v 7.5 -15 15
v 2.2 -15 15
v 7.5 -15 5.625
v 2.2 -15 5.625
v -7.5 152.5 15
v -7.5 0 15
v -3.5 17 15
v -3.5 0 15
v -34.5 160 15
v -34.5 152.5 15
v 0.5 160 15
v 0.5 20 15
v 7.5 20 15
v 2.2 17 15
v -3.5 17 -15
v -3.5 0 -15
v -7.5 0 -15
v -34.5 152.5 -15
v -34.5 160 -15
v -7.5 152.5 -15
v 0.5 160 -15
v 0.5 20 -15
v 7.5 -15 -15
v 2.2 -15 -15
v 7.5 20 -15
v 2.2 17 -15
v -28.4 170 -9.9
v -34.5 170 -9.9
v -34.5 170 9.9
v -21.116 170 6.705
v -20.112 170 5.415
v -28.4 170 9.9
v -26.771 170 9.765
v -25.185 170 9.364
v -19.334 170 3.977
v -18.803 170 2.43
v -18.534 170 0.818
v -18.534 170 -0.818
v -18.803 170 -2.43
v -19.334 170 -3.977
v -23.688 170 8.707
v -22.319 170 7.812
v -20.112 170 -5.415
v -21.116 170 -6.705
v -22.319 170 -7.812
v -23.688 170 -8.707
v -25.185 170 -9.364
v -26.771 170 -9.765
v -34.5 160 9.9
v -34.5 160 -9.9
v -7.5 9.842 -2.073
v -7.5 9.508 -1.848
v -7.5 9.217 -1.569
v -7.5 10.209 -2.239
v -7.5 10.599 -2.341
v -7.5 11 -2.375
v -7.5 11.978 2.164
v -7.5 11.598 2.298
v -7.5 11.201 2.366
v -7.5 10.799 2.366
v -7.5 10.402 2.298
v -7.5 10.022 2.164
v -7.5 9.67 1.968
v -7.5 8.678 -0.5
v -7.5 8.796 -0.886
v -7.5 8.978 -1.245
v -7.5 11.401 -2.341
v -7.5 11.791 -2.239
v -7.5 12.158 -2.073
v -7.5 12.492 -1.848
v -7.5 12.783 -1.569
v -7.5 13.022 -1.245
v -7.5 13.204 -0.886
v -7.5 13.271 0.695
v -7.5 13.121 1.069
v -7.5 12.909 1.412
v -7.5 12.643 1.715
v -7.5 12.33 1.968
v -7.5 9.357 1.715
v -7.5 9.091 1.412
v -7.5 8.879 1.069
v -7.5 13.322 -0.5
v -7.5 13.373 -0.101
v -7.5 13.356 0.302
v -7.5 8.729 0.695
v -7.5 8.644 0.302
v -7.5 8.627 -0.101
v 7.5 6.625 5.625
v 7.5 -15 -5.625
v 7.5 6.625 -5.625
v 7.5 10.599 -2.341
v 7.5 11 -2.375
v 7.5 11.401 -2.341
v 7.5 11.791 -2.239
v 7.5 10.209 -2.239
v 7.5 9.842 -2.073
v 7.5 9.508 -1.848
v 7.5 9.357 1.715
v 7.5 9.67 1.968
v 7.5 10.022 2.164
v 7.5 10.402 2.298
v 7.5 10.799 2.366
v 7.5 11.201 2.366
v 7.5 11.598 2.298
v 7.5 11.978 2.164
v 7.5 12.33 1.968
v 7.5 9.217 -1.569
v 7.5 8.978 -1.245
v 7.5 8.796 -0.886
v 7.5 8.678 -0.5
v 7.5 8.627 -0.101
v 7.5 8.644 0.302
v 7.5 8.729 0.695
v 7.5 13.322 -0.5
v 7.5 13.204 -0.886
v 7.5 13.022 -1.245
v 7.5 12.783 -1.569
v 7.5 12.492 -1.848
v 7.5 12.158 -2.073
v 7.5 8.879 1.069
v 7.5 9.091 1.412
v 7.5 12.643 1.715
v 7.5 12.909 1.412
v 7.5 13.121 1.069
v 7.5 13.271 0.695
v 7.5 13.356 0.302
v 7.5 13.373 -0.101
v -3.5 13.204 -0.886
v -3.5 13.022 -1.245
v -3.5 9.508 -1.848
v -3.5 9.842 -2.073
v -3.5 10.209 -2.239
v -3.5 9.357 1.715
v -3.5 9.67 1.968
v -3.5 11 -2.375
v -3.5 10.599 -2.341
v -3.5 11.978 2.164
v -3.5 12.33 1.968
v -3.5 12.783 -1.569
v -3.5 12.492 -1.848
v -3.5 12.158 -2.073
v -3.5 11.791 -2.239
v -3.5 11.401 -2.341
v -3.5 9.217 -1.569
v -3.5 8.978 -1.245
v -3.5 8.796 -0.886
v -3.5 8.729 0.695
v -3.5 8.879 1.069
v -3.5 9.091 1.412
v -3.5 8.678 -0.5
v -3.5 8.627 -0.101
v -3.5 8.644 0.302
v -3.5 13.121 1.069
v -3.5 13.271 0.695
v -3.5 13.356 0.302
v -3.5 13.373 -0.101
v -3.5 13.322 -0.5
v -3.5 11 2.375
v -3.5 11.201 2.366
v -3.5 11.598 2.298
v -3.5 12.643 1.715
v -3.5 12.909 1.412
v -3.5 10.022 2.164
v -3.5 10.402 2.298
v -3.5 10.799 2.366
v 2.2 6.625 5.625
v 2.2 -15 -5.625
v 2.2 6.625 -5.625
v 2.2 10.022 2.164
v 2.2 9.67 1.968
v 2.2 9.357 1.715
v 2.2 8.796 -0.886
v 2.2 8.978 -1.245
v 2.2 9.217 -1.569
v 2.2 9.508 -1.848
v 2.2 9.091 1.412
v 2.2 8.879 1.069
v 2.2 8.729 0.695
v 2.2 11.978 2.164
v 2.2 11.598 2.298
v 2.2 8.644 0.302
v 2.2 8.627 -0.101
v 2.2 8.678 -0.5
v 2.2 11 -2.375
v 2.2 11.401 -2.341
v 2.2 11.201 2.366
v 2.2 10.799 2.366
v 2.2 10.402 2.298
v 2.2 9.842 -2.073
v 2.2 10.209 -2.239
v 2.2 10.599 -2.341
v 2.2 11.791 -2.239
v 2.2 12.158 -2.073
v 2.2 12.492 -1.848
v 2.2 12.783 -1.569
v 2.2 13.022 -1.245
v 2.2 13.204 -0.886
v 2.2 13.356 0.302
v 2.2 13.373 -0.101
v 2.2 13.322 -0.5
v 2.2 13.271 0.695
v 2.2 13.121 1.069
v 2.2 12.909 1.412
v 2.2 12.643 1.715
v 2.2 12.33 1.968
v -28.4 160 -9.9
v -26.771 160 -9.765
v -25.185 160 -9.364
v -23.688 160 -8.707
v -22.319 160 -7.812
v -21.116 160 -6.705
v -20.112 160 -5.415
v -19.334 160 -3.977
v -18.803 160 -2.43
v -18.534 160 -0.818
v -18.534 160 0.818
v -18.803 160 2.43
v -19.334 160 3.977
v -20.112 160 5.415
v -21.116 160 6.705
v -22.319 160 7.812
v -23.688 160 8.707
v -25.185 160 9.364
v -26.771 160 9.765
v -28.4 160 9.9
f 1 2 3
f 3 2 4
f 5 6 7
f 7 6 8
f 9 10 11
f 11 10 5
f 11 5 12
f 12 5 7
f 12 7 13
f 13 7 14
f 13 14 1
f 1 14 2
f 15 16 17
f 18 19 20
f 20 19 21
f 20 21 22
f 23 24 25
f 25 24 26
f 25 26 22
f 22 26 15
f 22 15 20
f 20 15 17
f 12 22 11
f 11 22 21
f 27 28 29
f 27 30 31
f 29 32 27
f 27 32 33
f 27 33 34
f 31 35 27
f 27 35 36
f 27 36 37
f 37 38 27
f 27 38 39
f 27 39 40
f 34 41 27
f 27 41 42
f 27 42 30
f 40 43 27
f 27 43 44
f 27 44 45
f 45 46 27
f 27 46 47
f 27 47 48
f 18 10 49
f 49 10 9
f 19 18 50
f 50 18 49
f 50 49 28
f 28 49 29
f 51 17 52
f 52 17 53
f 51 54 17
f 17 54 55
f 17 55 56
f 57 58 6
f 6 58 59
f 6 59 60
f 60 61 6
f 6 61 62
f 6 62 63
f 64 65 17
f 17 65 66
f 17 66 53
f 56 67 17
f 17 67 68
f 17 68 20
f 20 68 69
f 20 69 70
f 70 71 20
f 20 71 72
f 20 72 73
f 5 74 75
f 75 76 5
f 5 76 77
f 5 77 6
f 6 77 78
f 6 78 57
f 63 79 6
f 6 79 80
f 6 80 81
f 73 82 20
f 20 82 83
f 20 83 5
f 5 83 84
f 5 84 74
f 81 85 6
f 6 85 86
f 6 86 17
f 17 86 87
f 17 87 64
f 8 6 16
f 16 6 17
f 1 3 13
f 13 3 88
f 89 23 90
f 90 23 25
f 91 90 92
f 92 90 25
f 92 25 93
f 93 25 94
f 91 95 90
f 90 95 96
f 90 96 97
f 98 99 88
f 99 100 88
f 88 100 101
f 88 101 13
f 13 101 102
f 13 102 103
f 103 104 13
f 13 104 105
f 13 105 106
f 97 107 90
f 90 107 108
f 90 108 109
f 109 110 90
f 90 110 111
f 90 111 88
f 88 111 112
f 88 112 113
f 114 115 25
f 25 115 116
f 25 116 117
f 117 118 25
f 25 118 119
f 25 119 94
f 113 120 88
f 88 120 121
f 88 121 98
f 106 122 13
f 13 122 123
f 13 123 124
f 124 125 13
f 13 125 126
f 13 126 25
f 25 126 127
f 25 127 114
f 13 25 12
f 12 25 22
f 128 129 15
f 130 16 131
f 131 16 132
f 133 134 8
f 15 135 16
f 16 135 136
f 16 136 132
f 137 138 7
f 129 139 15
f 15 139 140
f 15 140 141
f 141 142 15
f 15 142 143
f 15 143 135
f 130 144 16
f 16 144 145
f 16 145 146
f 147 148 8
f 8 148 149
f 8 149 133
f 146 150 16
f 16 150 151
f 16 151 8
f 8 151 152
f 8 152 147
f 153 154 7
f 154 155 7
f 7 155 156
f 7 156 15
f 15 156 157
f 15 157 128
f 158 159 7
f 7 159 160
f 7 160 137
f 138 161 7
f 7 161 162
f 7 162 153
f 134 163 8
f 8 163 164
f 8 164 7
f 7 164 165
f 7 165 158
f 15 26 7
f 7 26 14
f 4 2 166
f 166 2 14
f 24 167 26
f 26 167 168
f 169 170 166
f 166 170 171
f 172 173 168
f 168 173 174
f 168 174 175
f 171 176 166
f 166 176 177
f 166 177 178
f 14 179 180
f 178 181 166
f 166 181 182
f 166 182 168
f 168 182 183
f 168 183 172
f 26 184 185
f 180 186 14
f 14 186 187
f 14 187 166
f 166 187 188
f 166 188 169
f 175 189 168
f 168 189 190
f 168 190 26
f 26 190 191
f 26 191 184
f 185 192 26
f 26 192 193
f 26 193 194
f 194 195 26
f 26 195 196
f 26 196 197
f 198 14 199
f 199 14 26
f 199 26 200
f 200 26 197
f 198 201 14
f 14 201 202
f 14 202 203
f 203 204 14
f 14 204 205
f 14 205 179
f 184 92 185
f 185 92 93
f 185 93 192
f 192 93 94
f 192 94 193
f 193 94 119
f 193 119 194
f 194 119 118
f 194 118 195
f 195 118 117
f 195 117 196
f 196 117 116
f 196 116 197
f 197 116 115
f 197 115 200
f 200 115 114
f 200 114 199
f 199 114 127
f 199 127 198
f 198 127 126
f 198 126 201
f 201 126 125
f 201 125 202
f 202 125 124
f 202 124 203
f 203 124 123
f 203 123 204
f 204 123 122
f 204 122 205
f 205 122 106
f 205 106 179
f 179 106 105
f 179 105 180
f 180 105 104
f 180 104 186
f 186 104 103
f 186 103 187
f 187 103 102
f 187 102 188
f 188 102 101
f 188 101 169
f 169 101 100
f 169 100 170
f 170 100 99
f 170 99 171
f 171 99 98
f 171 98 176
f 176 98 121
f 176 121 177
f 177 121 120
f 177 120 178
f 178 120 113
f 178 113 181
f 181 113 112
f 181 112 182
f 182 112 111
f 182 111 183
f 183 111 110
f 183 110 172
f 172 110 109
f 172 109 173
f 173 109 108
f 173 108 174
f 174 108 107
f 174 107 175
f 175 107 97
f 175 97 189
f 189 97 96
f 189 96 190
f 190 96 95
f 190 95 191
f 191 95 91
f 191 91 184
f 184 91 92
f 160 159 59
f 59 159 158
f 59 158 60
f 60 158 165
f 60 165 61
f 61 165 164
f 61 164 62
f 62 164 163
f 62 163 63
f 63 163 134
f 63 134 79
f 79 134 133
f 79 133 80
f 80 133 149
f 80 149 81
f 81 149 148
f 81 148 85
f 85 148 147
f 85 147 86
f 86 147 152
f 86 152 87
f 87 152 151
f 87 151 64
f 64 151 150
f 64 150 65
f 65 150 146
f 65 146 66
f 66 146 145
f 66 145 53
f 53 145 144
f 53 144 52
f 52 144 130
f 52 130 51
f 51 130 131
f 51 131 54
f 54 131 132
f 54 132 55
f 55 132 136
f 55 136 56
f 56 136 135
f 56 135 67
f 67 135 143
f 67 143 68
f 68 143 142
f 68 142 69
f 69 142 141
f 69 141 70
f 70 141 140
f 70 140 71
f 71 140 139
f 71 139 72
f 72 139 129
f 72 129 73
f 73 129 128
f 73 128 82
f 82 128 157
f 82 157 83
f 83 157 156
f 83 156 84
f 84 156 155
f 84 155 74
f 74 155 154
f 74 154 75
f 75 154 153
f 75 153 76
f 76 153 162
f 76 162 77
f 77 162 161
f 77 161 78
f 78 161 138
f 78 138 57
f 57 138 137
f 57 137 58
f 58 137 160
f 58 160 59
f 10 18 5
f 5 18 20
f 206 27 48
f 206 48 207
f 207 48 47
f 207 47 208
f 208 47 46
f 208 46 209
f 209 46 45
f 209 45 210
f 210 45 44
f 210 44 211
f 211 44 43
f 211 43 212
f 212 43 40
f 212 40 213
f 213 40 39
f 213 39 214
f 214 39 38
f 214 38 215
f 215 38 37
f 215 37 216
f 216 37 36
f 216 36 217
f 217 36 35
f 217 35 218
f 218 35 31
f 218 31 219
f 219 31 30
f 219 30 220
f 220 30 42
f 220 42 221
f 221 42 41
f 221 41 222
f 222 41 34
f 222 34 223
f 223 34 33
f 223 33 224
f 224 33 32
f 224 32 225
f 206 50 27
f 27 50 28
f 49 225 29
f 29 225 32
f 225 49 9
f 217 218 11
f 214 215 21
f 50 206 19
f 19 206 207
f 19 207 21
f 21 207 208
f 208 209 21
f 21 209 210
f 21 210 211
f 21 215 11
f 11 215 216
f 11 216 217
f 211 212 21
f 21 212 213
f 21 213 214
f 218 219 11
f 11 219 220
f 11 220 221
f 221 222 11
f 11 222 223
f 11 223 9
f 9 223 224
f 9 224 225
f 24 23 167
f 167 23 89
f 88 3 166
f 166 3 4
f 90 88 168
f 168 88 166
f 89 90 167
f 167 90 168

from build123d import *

# Parameters (mm, degrees)
SKETCH_1_W          = 15
SKETCH_1_H          = 30
EXTRUDE_1_DEPTH     = 20
SKETCH_2_W          = 5.7
SKETCH_2_H          = 17
CUT_EXTRUDE_1_DEPTH = 31
SKETCH_3_W          = 8
SKETCH_3_H          = 30
EXTRUDE_2_DEPTH     = 150
SKETCH_4_R          = 2.375
CUT_EXTRUDE_2_DEPTH = 16
SKETCH_5_W          = 30
SKETCH_5_H          = 17.5
EXTRUDE_3_DEPTH     = 27
CUT_EXTRUDE_3_DEPTH = 10
SKETCH_7_W          = 30
SKETCH_7_H          = 15
EXTRUDE_4_DEPTH     = 5.3
CUT_EXTRUDE_4_REACH = 44
SKETCH_8_W          = 11.25
SKETCH_8_H          = 21.625


with BuildPart() as part:
    # 스케치1 → 보스-돌출1 (new body)
    with BuildSketch(Plane(origin=(0, 0, 0), x_dir=(1, 0, 0), z_dir=(0, 1, 0))):
        Rectangle(SKETCH_1_W, SKETCH_1_H)
    extrude(amount=EXTRUDE_1_DEPTH)

    # 스케치2 → 컷-돌출1 (cut, through all)
    with BuildSketch(Plane.XY.offset(15)):
        with Locations((-0.65, 8.5)):
            Rectangle(SKETCH_2_W, SKETCH_2_H)
    extrude(amount=-CUT_EXTRUDE_1_DEPTH, mode=Mode.SUBTRACT)

    # 스케치3 → 보스-돌출2 (add)
    with BuildSketch(Plane(origin=(0, 20, 0), x_dir=(1, 0, 0), z_dir=(0, 1, 0))):
        with Locations((-3.5, 0)):
            Rectangle(SKETCH_3_W, SKETCH_3_H)
    extrude(amount=EXTRUDE_2_DEPTH)

    # 스케치4 → 컷-돌출2 (cut, through all)
    with BuildSketch(Plane(origin=(7.5, 0, 0), x_dir=(0, 0, -1), z_dir=(1, 0, 0))):
        with Locations((0, 11)):
            Circle(SKETCH_4_R)
    extrude(amount=-CUT_EXTRUDE_2_DEPTH, mode=Mode.SUBTRACT)

    # 스케치5 → 보스-돌출3 (add)
    with BuildSketch(Plane.ZY.offset(7.5)):
        with Locations((0, 161.25)):
            Rectangle(SKETCH_5_W, SKETCH_5_H)
    extrude(amount=EXTRUDE_3_DEPTH)

    # 스케치6 → 컷-돌출3 (cut)
    with BuildSketch(Plane(origin=(0, 170, 0), x_dir=(1, 0, 0), z_dir=(0, 1, 0))):
        with BuildLine():
            Line((-34.5, 15), (-34.5, 9.9))
            Line((-34.5, 9.9), (-28.4, 9.9))
            ThreePointArc((-28.4, 9.9), (-18.5, 0), (-28.4, -9.9))
            Line((-28.4, -9.9), (-34.5, -9.9))
            Line((-34.5, -9.9), (-34.5, -15))
            Line((-34.5, -15), (0.5, -15))
            Line((0.5, -15), (0.5, 15))
            Line((0.5, 15), (-34.5, 15))
        make_face()
    extrude(amount=-CUT_EXTRUDE_3_DEPTH, mode=Mode.SUBTRACT)

    # 스케치7 → 보스-돌출4 (add)
    with BuildSketch(Plane(origin=(7.5, 0, 0), x_dir=(0, 0, -1), z_dir=(1, 0, 0))):
        with Locations((0, -7.5)):
            Rectangle(SKETCH_7_W, SKETCH_7_H)
    extrude(amount=-EXTRUDE_4_DEPTH)

    # 스케치8 → 컷-돌출4 (cut, up to next)
    with BuildSketch(Plane(origin=(7.5, 0, 0), x_dir=(0, 0, -1), z_dir=(1, 0, 0)), mode=Mode.PRIVATE) as cut_extrude_4_sk1:
        with Locations((0, -4.1875)):
            Rectangle(SKETCH_8_W, SKETCH_8_H)
    cut_extrude_4_tool1 = extrude(cut_extrude_4_sk1.sketch, amount=-CUT_EXTRUDE_4_REACH, mode=Mode.PRIVATE) & part.part
    add(cut_extrude_4_tool1.solids().sort_by_distance((7.5, -4.1875, 0))[0], mode=Mode.SUBTRACT)


solid = part.part
